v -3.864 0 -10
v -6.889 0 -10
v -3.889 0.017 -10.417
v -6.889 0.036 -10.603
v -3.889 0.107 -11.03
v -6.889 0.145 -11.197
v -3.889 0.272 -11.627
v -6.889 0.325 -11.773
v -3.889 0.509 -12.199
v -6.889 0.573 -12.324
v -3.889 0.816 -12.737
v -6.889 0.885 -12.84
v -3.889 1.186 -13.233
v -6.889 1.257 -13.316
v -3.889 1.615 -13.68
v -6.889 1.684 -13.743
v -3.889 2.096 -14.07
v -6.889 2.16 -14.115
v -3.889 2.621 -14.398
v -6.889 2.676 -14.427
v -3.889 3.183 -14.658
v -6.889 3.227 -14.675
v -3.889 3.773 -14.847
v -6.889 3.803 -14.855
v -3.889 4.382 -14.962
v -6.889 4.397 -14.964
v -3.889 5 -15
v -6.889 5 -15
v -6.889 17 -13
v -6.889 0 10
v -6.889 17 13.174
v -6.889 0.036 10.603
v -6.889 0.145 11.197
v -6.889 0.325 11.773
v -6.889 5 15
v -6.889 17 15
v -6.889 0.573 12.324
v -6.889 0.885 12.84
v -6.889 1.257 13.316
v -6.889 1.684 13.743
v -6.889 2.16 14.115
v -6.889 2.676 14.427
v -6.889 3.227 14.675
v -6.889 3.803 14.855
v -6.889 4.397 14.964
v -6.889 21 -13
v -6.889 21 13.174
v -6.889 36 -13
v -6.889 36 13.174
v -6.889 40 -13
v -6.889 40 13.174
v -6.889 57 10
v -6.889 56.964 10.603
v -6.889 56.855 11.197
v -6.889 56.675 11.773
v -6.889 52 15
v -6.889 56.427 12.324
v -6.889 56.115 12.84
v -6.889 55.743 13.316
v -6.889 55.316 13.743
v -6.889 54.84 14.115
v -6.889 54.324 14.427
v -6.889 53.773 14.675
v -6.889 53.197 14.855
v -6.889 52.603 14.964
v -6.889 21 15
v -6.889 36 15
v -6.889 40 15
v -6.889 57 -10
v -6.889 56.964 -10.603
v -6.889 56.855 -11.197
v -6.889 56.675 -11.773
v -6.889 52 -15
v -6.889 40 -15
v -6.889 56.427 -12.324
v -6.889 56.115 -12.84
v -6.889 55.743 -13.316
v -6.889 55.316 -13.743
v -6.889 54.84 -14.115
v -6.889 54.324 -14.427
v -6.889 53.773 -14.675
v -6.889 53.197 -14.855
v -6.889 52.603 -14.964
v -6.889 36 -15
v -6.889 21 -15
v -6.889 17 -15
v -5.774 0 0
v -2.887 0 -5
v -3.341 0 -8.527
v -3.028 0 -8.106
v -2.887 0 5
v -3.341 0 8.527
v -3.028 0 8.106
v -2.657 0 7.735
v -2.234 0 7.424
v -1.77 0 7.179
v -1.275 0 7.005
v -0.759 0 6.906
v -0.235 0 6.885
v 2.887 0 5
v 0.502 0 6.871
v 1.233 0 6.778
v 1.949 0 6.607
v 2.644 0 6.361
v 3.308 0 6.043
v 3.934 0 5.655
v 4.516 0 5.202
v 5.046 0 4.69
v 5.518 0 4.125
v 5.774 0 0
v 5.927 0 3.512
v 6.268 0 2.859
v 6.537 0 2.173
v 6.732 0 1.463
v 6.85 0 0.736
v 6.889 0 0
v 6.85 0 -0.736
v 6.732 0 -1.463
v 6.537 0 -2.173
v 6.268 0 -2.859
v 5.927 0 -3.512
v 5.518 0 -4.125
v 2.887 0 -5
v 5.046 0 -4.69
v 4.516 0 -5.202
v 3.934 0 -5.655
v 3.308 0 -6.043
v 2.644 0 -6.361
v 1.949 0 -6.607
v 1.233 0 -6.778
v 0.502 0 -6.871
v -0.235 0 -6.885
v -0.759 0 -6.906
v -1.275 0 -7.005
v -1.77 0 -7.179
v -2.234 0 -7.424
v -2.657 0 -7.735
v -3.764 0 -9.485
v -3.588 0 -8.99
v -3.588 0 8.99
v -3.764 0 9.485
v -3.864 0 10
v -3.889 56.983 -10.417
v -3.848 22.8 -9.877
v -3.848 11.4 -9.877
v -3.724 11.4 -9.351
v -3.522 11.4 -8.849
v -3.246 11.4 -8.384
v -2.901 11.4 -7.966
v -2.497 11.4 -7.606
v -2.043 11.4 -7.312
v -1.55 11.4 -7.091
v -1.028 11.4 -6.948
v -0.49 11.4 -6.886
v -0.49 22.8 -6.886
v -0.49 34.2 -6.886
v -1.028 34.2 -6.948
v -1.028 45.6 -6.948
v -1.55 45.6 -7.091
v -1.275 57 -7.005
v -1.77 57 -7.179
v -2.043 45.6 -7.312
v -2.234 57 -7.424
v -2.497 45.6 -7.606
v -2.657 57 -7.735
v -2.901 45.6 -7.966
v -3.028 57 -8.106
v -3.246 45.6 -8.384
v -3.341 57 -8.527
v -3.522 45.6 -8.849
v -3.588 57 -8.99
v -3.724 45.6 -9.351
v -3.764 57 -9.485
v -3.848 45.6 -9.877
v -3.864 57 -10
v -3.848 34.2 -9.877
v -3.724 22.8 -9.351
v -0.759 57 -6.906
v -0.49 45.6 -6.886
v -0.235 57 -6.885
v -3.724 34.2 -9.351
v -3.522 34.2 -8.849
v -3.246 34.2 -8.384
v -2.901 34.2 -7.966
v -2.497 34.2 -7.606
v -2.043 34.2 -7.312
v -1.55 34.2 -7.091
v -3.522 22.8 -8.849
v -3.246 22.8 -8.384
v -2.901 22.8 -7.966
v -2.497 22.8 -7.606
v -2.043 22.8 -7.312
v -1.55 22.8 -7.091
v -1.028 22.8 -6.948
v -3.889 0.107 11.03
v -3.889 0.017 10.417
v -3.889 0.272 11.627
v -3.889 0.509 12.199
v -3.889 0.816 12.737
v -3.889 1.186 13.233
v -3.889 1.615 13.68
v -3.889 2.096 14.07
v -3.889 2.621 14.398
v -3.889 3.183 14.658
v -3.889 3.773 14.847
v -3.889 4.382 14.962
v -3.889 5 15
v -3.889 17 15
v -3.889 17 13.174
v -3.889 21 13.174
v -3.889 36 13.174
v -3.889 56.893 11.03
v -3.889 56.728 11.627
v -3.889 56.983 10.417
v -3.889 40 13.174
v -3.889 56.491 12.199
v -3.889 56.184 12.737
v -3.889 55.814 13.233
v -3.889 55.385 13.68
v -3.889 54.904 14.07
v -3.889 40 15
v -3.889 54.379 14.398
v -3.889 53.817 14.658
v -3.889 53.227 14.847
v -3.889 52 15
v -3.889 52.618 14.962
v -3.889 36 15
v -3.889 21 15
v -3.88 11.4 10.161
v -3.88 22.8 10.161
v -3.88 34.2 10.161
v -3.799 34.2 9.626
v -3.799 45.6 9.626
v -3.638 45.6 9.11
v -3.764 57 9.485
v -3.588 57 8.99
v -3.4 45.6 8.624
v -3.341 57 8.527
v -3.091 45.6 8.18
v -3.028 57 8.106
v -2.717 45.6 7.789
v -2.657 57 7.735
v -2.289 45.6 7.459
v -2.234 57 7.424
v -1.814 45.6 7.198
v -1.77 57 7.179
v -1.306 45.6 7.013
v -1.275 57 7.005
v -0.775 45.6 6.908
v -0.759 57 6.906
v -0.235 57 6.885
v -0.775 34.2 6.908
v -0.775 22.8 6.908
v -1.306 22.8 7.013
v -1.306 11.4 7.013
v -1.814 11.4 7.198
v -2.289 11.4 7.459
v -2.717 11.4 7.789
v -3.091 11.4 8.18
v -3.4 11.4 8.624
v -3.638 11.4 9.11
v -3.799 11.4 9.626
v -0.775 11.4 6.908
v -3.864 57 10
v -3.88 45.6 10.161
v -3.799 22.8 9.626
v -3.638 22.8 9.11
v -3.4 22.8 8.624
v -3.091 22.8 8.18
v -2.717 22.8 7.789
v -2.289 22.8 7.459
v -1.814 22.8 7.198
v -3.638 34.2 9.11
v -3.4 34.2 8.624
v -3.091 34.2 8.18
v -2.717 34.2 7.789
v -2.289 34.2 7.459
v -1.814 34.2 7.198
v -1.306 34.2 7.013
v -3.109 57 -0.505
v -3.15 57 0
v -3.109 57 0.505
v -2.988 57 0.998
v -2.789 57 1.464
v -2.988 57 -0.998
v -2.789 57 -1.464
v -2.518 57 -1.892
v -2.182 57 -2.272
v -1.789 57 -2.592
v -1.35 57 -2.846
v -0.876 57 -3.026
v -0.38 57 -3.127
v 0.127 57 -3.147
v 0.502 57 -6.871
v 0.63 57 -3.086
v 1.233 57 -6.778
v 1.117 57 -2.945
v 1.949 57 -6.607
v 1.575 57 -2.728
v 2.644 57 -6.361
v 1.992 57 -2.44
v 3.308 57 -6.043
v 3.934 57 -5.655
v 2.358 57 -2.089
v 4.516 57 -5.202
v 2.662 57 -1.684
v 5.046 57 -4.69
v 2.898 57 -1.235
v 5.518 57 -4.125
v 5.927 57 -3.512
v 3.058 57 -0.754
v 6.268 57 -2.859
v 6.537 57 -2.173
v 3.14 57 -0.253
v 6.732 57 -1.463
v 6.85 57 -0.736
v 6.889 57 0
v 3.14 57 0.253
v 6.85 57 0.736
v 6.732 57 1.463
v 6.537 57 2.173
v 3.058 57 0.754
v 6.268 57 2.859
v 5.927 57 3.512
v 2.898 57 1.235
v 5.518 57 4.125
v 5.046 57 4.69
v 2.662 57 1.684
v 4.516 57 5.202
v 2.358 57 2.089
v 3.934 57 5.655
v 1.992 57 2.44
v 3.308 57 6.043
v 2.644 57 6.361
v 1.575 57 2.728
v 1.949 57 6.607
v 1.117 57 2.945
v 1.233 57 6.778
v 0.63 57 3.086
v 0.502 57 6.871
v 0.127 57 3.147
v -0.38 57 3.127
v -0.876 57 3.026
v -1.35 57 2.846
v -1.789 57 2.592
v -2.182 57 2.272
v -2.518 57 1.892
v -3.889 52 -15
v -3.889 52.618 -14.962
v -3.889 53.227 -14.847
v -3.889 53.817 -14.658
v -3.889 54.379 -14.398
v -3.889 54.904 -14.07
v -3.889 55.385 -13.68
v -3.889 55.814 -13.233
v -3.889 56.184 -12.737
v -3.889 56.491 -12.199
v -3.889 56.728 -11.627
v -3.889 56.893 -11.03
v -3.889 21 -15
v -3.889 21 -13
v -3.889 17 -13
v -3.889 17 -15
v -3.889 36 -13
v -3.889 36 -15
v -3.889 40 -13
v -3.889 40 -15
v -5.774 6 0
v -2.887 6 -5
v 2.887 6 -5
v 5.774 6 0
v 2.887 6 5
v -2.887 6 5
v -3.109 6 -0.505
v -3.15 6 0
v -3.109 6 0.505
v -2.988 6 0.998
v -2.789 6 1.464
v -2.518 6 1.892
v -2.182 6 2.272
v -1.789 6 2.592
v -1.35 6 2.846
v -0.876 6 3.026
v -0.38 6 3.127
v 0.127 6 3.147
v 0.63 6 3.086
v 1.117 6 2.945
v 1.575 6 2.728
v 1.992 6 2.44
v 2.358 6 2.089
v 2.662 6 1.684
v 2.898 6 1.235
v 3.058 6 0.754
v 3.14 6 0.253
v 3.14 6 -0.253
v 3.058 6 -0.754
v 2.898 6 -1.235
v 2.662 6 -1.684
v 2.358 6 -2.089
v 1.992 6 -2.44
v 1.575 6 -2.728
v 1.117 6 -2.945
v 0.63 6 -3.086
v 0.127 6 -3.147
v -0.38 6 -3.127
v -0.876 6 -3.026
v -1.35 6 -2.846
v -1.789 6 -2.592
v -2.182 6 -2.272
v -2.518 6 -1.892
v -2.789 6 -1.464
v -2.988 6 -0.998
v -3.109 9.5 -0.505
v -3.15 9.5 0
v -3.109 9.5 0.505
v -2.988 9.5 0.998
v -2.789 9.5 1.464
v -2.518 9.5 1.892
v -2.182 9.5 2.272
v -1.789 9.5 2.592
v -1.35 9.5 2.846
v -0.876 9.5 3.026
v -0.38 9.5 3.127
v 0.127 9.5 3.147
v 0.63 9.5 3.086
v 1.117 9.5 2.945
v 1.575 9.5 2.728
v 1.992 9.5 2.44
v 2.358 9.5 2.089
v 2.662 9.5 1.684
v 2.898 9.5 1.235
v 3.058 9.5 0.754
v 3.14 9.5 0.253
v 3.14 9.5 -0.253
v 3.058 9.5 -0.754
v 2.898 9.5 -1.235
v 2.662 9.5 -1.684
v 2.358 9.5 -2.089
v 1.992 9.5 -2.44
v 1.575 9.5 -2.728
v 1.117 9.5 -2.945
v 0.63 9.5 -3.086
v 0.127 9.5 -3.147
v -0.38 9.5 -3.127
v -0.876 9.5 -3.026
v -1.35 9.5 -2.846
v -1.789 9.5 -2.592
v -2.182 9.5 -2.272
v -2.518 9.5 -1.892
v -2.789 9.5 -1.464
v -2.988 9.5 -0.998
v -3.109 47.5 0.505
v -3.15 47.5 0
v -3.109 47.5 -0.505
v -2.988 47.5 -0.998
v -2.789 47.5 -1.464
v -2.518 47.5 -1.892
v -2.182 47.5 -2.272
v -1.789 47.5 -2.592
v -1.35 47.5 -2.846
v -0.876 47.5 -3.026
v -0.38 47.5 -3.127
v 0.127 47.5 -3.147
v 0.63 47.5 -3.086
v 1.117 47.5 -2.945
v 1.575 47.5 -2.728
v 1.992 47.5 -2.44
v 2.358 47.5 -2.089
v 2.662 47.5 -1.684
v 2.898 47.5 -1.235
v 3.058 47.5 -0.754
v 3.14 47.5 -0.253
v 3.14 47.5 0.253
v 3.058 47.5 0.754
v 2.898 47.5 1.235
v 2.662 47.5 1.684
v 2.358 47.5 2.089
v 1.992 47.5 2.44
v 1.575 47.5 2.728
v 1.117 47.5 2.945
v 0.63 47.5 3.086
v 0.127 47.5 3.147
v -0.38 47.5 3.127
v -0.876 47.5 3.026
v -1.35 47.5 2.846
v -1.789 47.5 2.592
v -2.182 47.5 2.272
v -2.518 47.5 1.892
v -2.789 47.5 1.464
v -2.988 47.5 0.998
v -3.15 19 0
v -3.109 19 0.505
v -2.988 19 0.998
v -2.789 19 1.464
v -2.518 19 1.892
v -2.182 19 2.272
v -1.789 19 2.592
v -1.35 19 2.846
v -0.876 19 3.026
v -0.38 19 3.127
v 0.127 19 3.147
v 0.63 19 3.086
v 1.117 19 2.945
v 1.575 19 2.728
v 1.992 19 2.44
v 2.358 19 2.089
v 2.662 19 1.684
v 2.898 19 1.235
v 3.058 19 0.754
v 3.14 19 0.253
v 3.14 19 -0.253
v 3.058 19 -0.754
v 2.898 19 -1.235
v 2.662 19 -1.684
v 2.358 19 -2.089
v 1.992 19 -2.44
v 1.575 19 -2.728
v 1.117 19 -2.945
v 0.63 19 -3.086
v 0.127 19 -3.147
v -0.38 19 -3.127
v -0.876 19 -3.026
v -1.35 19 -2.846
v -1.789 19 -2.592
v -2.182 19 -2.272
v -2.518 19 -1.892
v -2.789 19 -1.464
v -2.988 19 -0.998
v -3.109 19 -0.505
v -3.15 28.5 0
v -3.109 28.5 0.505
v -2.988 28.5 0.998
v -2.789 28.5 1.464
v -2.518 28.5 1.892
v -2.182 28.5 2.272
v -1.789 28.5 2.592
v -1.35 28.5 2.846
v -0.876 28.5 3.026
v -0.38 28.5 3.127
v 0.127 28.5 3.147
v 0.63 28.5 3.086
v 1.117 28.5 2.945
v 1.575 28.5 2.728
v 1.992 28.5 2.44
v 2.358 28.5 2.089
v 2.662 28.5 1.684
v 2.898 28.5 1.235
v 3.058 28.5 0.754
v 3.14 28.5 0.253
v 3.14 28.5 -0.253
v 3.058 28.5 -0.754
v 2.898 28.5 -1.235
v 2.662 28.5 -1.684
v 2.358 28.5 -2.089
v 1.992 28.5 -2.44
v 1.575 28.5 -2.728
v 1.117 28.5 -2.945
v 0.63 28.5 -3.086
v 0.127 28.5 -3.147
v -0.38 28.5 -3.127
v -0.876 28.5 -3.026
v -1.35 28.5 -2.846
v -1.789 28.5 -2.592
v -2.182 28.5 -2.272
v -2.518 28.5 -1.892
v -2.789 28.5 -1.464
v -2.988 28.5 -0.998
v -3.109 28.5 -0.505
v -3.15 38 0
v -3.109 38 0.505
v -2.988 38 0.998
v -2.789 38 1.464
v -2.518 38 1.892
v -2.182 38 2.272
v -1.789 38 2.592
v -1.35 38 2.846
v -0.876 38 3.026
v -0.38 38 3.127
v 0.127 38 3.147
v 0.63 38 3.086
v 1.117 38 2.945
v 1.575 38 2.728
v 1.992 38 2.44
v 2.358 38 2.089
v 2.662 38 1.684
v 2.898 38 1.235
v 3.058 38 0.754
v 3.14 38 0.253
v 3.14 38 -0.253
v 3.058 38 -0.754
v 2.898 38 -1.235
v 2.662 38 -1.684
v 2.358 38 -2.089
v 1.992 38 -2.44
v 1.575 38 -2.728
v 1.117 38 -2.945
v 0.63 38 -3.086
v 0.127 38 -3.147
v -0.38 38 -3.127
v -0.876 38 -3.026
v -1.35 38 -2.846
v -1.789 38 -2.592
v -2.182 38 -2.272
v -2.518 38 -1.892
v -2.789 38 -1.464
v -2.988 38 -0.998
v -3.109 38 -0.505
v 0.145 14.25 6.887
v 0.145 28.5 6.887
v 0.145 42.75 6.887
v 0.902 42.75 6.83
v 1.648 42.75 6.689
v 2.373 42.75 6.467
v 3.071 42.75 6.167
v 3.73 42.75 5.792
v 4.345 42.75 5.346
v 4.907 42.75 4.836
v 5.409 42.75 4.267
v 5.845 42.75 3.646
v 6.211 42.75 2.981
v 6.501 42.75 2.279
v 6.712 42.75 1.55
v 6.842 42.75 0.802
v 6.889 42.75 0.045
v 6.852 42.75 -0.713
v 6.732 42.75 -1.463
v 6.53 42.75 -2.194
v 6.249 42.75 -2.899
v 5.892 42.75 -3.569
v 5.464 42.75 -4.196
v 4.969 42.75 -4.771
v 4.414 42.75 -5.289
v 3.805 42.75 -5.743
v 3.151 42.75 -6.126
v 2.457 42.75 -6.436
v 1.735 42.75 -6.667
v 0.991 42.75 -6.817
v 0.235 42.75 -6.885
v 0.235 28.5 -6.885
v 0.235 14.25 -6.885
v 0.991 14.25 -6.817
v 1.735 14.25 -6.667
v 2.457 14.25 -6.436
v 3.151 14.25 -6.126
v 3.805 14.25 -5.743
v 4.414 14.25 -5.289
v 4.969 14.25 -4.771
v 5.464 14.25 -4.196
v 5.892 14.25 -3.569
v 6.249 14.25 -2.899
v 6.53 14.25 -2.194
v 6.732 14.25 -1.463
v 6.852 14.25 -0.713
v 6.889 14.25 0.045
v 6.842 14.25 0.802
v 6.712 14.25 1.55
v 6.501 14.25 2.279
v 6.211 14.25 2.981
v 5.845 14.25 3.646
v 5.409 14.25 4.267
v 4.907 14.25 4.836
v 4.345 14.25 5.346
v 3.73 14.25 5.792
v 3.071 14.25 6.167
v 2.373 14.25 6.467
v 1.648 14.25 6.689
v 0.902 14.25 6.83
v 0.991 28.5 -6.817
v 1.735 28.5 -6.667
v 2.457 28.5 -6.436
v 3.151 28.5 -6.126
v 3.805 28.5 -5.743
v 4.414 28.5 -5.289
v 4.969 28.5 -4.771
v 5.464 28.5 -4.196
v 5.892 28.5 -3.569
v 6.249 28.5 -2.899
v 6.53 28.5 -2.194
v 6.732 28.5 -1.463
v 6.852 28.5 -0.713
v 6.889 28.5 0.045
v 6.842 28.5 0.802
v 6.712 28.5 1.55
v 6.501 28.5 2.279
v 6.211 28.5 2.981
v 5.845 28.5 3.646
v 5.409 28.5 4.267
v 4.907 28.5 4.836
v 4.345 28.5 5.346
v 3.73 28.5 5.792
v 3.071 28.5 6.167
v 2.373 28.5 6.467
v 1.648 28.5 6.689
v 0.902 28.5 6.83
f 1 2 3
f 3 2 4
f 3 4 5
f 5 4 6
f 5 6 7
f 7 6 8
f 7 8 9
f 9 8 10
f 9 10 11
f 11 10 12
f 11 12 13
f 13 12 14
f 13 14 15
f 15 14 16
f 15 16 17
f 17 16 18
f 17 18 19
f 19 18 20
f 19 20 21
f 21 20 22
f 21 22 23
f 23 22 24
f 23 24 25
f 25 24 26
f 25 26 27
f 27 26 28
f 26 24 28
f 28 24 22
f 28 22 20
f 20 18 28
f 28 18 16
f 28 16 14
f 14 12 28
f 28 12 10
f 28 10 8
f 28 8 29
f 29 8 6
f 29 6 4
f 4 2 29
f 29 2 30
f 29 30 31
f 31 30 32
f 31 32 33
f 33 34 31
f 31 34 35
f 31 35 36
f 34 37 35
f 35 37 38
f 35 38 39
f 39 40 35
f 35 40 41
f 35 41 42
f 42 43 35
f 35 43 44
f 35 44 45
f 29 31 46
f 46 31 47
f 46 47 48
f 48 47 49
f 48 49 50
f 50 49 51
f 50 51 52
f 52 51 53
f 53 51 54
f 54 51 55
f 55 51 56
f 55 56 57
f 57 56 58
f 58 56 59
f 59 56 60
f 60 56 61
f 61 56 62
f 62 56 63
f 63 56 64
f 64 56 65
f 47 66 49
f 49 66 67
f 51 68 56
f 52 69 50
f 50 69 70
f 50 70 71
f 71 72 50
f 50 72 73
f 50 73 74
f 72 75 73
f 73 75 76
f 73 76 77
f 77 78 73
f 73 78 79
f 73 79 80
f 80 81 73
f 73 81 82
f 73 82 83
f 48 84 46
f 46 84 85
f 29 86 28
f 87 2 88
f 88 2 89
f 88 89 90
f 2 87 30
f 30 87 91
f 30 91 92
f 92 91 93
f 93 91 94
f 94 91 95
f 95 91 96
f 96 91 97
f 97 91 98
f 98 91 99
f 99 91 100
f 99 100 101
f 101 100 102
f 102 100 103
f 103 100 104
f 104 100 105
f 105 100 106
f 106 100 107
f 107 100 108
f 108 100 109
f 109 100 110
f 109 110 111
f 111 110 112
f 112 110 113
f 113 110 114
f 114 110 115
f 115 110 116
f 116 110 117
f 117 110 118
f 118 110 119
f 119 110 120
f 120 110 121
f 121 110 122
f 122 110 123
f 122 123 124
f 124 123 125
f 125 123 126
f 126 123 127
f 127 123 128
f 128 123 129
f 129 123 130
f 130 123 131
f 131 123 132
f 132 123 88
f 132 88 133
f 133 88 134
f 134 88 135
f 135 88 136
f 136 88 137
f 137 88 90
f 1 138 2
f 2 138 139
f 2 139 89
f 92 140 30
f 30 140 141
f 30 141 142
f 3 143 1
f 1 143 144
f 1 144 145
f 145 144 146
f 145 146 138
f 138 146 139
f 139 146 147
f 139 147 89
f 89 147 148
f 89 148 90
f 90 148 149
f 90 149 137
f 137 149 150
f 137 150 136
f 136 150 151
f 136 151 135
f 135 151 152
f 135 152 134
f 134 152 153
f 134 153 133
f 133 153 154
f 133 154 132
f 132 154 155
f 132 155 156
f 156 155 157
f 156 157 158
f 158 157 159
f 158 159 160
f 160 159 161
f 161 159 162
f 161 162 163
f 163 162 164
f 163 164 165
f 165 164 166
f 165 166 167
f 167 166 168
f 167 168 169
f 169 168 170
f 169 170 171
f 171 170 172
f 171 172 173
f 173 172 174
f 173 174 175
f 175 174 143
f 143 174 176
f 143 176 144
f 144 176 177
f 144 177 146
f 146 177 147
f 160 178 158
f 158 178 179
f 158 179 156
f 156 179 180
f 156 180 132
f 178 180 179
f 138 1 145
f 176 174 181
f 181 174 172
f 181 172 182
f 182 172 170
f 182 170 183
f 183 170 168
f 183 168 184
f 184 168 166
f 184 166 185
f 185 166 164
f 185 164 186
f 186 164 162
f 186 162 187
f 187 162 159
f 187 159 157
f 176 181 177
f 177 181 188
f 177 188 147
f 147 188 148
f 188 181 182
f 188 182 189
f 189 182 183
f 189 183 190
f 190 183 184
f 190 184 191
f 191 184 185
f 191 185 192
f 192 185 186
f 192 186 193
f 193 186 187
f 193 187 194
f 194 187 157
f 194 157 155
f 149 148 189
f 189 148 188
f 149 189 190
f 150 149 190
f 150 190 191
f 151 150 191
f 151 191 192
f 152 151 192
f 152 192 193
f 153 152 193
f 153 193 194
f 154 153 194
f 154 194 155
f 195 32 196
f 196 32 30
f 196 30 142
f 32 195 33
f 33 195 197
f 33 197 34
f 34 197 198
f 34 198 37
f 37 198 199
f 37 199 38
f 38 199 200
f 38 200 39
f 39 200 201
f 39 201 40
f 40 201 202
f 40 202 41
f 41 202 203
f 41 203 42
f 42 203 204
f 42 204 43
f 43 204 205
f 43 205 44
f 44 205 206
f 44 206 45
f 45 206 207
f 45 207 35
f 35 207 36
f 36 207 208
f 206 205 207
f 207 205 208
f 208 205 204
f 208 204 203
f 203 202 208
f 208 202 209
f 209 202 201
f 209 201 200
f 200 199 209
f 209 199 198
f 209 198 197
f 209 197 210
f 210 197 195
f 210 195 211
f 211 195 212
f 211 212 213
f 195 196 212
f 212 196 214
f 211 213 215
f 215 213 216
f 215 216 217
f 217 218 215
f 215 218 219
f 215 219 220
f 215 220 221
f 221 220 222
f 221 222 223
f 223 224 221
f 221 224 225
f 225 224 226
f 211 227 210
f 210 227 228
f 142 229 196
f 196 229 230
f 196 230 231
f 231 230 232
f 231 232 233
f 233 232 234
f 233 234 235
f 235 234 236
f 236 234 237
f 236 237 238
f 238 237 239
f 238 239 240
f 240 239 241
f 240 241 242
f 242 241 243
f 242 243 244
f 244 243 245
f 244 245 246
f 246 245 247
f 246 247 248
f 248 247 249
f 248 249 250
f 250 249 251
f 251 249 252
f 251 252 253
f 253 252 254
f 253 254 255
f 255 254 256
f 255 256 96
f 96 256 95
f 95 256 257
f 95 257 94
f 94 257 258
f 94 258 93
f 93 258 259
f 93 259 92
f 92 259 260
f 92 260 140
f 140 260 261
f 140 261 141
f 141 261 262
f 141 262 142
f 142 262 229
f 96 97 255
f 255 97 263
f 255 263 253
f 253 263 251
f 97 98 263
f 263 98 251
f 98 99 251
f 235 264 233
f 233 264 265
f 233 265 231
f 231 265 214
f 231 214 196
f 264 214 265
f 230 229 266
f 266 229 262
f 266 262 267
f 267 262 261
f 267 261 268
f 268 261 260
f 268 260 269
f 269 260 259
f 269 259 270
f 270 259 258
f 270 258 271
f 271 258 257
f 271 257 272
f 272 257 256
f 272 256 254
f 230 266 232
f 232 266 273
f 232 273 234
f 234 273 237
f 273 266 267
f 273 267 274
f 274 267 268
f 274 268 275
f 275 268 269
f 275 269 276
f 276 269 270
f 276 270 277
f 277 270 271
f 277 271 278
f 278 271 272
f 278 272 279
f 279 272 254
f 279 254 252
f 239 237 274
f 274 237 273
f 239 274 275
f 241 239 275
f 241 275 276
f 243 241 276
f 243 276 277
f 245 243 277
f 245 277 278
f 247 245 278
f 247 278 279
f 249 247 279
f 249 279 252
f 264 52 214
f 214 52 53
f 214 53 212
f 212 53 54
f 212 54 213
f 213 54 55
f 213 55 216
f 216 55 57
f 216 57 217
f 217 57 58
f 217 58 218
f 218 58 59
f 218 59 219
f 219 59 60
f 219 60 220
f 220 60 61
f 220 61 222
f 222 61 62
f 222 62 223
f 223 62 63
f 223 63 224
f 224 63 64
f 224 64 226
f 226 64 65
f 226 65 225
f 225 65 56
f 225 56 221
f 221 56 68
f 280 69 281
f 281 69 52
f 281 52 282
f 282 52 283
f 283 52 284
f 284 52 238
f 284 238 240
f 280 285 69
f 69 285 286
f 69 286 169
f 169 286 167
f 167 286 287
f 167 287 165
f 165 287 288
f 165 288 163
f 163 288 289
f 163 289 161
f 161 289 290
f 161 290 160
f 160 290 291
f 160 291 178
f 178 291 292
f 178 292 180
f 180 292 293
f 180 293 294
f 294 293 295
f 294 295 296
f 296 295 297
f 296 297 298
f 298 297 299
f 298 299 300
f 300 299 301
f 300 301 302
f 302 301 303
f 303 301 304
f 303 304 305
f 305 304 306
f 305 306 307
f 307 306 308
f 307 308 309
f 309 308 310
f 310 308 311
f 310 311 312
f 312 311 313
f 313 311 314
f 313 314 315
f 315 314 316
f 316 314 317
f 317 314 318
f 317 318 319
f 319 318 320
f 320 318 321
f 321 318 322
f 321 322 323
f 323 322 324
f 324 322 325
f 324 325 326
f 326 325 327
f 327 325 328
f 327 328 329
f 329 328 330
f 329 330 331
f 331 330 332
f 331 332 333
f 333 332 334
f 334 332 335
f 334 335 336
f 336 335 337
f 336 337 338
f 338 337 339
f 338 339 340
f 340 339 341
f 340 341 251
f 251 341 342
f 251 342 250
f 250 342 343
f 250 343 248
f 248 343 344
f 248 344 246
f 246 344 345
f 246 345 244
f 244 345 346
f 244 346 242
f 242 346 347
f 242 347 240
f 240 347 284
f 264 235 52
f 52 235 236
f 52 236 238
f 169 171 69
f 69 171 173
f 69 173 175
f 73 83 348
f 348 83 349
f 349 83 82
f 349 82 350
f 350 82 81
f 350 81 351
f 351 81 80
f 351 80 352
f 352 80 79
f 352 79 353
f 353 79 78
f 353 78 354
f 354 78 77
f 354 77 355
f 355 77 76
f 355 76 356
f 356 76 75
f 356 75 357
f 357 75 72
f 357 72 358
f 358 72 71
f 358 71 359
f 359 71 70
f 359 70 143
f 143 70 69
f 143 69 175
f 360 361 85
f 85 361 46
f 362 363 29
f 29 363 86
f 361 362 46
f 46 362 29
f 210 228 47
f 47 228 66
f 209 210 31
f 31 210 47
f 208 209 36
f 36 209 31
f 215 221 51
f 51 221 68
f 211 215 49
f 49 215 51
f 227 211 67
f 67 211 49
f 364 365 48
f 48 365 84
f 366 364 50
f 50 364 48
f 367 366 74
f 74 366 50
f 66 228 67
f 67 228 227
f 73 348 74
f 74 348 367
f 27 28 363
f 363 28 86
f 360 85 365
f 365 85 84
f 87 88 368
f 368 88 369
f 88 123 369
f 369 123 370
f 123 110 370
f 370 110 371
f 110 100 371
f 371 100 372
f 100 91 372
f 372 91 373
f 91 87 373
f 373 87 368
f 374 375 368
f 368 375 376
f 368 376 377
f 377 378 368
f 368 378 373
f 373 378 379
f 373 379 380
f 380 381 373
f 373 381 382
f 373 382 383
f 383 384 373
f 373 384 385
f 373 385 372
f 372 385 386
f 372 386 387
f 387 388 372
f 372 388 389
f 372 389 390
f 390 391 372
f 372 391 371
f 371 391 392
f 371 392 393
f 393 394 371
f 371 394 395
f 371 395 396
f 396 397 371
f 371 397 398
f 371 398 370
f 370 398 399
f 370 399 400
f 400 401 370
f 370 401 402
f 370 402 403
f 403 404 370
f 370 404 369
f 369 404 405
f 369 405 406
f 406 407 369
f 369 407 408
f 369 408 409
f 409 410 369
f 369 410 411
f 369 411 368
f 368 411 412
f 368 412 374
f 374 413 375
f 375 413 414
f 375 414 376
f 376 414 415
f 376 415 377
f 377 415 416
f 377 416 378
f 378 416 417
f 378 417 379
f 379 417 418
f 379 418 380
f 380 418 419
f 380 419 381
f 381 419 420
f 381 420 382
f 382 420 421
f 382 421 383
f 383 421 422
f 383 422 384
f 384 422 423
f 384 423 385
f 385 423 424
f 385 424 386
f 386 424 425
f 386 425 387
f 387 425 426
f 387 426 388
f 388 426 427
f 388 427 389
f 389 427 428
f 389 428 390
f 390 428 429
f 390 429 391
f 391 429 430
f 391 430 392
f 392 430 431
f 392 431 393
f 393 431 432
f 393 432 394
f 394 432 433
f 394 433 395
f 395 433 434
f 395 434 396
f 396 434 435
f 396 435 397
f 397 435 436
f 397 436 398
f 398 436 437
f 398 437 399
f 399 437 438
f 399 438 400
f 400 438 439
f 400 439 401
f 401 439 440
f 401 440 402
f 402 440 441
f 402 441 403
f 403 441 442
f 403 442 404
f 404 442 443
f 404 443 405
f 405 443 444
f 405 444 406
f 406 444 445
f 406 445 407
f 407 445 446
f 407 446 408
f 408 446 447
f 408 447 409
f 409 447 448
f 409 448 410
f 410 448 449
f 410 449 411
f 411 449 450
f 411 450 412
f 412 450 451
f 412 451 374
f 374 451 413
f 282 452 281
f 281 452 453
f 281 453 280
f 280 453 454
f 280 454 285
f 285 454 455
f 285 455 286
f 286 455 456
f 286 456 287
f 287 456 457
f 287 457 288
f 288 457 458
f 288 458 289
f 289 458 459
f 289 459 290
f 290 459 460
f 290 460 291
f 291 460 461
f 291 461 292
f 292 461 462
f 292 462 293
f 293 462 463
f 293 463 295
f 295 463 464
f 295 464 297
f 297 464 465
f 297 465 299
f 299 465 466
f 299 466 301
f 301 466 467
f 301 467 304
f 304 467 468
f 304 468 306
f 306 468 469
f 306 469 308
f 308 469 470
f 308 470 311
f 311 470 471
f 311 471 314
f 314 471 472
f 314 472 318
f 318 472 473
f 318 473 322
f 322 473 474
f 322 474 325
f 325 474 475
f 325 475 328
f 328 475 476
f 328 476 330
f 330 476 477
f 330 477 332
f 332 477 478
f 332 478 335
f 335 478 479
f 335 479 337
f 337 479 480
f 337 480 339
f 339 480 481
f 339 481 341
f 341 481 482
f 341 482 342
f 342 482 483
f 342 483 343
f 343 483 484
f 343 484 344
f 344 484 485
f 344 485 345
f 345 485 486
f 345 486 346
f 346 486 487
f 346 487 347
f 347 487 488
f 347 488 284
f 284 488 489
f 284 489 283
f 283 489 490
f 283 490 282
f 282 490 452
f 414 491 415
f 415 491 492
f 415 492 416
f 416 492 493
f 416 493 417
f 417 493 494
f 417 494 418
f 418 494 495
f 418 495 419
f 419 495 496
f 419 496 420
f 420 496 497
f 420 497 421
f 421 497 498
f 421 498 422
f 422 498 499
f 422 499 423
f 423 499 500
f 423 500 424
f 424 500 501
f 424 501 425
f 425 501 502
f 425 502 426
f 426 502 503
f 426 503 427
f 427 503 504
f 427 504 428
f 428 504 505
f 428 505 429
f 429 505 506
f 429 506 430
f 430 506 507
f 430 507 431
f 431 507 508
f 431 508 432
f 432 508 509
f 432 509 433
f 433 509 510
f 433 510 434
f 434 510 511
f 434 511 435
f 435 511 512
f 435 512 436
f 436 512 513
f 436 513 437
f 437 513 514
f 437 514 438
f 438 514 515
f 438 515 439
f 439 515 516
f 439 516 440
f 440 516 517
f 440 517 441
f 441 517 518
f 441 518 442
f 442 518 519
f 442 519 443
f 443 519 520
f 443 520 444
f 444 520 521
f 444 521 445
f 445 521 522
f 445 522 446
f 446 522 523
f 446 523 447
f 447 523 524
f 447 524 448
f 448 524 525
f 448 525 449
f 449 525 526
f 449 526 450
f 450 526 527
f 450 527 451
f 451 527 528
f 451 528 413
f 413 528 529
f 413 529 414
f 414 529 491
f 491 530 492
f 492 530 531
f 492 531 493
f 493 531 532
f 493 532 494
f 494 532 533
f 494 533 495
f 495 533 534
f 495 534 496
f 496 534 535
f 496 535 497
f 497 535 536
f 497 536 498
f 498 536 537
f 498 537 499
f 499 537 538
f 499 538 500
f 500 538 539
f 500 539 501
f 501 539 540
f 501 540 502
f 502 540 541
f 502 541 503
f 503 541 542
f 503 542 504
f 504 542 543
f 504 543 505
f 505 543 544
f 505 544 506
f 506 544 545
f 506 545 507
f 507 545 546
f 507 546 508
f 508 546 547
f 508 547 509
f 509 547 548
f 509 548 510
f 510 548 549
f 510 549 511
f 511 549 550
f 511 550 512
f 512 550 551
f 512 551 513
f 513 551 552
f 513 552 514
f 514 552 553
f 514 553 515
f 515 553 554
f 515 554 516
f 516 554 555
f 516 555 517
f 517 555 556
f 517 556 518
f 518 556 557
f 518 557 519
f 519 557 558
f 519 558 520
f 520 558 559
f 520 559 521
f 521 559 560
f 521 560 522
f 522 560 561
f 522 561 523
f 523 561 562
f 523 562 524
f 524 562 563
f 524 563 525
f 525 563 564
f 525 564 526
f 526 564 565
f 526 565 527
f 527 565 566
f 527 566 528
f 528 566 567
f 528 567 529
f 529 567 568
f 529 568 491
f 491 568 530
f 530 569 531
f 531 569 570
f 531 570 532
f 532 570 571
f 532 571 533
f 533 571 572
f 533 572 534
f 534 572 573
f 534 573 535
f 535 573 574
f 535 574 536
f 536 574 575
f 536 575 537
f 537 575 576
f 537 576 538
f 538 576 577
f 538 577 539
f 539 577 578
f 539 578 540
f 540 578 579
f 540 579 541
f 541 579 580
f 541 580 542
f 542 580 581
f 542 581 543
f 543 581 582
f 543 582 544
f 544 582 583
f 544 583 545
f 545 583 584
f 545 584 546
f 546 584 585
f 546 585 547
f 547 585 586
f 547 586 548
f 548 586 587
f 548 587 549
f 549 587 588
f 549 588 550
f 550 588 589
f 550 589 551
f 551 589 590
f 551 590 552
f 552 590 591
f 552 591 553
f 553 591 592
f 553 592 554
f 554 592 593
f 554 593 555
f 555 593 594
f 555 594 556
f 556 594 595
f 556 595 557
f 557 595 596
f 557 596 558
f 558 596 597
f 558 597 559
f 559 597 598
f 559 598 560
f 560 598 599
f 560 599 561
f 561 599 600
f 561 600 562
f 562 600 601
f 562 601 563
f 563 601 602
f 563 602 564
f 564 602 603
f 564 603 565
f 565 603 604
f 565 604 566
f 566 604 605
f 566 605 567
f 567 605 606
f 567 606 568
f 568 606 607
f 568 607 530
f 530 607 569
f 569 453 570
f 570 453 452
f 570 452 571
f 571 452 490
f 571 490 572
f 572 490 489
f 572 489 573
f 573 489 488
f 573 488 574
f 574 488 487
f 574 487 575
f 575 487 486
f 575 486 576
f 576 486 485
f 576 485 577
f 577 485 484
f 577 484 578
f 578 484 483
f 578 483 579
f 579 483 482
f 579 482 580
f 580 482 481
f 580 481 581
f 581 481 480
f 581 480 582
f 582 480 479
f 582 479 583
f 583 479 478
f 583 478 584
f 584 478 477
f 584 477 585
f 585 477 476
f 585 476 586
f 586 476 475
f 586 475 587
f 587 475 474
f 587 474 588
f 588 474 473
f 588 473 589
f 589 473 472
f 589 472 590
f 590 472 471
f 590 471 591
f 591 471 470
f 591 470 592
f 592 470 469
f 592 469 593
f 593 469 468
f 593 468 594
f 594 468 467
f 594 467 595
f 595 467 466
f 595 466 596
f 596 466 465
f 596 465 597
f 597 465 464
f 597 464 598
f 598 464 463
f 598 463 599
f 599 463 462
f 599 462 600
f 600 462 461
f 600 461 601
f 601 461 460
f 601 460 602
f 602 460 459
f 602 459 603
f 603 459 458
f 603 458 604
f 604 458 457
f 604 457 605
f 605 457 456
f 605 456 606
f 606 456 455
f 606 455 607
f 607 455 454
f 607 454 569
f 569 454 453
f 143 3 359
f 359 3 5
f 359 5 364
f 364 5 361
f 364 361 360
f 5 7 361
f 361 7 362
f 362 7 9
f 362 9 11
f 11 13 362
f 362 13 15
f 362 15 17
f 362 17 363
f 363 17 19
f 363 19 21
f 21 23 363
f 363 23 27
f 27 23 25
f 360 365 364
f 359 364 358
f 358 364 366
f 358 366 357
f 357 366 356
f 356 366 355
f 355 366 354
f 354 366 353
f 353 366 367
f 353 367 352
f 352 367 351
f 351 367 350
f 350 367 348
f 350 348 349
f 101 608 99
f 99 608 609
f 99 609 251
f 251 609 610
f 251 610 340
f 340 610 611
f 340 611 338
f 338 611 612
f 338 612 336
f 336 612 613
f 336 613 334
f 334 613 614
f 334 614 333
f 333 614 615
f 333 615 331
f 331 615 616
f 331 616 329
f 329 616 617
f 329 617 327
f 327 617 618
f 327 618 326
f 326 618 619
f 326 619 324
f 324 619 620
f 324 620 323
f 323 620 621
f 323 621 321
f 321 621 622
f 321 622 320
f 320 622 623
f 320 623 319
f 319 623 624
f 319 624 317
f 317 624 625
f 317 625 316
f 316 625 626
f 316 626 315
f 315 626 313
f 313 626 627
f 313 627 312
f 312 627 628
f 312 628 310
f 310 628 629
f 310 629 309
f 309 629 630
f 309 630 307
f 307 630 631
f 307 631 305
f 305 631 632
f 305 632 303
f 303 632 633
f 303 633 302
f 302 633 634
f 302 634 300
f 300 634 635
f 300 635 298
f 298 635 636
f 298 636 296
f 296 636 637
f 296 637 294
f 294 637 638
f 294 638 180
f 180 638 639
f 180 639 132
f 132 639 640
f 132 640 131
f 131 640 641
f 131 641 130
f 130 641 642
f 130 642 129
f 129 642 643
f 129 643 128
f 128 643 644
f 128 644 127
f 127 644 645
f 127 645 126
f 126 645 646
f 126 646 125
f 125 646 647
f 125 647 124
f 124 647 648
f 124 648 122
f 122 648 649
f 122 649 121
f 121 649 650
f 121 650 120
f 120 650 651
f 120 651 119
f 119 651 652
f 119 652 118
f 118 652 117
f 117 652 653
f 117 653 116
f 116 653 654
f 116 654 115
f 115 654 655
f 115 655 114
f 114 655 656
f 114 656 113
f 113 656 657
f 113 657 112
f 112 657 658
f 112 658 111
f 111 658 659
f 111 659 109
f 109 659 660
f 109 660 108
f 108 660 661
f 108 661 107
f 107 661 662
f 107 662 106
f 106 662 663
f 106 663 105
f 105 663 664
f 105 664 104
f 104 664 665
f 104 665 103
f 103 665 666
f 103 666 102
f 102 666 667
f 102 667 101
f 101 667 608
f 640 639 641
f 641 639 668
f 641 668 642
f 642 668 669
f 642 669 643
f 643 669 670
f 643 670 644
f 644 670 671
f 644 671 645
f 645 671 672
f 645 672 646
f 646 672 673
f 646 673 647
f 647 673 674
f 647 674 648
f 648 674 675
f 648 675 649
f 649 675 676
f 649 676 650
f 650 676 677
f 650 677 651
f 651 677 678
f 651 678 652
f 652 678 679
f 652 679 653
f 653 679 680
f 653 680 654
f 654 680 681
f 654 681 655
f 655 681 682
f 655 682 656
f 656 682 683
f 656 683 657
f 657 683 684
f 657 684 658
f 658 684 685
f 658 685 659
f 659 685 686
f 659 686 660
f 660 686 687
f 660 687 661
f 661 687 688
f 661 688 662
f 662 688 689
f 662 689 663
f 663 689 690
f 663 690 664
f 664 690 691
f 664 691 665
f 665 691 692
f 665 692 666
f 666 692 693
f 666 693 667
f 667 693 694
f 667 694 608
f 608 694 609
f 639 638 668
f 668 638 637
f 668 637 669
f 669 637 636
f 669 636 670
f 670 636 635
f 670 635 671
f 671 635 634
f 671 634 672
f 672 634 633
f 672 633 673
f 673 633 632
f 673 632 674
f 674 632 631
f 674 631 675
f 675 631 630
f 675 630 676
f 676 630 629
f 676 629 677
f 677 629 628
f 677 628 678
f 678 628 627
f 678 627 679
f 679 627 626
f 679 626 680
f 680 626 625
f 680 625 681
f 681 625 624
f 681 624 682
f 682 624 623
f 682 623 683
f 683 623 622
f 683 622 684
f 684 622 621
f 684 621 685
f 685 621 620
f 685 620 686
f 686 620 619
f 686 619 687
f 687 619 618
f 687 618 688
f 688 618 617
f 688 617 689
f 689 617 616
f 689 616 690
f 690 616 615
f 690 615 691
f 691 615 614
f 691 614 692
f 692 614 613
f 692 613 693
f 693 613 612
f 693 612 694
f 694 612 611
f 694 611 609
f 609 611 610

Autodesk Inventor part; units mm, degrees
ref_plane "YZ Plane" through (0, 0, 0) normal (1, 0, 0) x (0, 1, 0)
ref_plane "XZ Plane" through (0, 0, 0) normal (0, 1, 0) x (-1, 0, 0)
ref_plane "XY Plane" through (0, 0, 0) normal (0, 0, 1) x (1, 0, 0)
sketch "Boceto1" plane through (0, 0, 0) normal (0, 1, 0) x (-1, 0, 0)
  circle A0 centre (0, 0) radius 3.15
  line L0 (6.889, 15) -> (3.889, 15)
  line L1 (3.889, -15) -> (6.889, -15)
  line L2 (6.889, -15) -> (6.889, 15)
  line L3 (0, 0) -> (3.15, 0) construction
  arc A1 (0.2346, 6.885) -> (0.2346, -6.885) centre (0, 0) ccw
  line L4 (3.889, 15) -> (3.889, 10.4169)
  line L5 (3.889, -15) -> (3.889, -10.4169)
  arc A2 (0.2346, 6.885) -> (3.889, 10.4169) centre (0.355, 10.4169) ccw
  arc A3 (3.889, -10.4169) -> (0.2346, -6.885) centre (0.355, -10.4169) ccw
  line L6 (2.9445, 5.1) -> (5.889, 0) construction
  line L7 (5.889, 0) -> (2.9445, -5.1) construction
  line L8 (2.9445, -5.1) -> (-2.9445, -5.1) construction
  line L9 (-2.9445, -5.1) -> (-5.889, 0) construction
  line L10 (-5.889, 0) -> (-2.9445, 5.1) construction
  line L11 (-2.9445, 5.1) -> (2.9445, 5.1) construction
  line L12 (5.889, 0) -> (6.889, 0) construction
  line L13 (-5.889, 0) -> (-6.889, 0) construction
  dimension "d0" = 6.3
  dimension "d3" = 10.2
  dimension "d4" = 1
  dimension "d5" = 3
  dimension "d12" = 30
extrude "Extrusión1" add sketch "Boceto1" along normal blind 57
sketch "Boceto2" plane through (0, 0, 0) normal (0, -1, 0) x (1, 0, 0)
  line L0 (-5.7735, 0) -> (-2.8868, 5)
  line L1 (-2.8868, 5) -> (2.8868, 5)
  line L2 (2.8868, 5) -> (5.7735, 0)
  line L3 (5.7735, 0) -> (2.8868, -5)
  line L4 (2.8868, -5) -> (-2.8868, -5)
  line L5 (-2.8868, -5) -> (-5.7735, 0)
  point P0 (0, 0)
  point P1 (0, 0)
  dimension "d8" = 10
extrude "Extrusión2" cut sketch "Boceto2" against normal blind 6
sketch "Boceto4" plane through (-6.889, 0, -15) normal (-1, 0, 0) x (0, 0, 1)
  line L0 (0, 0) -> (0, 57) projected
  line L1 (0, 28.5) -> (30, 28.5) construction
  line L2 (30, 0) -> (30, 57) projected
  line L3 (0, 36) -> (2, 36)
  line L4 (2, 36) -> (2, 40)
  line L5 (2, 40) -> (0, 40)
  line L6 (0, 40) -> (0, 36)
  line L7 (30, 36) -> (28.1744, 36)
  line L8 (28.1744, 36) -> (28.1744, 40)
  line L9 (28.1744, 40) -> (30, 40)
  line L10 (30, 40) -> (30, 36)
  line L11 (0, 21) -> (2, 21)
  line L12 (2, 21) -> (2, 17)
  line L13 (2, 17) -> (0, 17)
  line L14 (0, 17) -> (0, 21)
  line L15 (30, 21) -> (28.1744, 21)
  line L16 (28.1744, 21) -> (28.1744, 17)
  line L17 (28.1744, 17) -> (30, 17)
  line L18 (30, 17) -> (30, 21)
  line L19 (2, 40) -> (28.1744, 40) construction
  line L20 (2, 36) -> (28.1744, 36) construction
  line L21 (2, 21) -> (28.1744, 21) construction
  line L22 (2, 17) -> (28.1744, 17) construction
  point P0 (15, 0)
  dimension "d13" = 2
  dimension "d14" = 4
  dimension "d15" = 15
extrude "Extrusión3" cut sketch "Boceto4" against normal up to next
fillet "Empalme1" radius 5 4 edges at (-5.389, 57, -15) (-5.389, 57, 15) (-5.389, 0, 15) (-5.389, 0, -15)
properties part number "Soporte ESC"
